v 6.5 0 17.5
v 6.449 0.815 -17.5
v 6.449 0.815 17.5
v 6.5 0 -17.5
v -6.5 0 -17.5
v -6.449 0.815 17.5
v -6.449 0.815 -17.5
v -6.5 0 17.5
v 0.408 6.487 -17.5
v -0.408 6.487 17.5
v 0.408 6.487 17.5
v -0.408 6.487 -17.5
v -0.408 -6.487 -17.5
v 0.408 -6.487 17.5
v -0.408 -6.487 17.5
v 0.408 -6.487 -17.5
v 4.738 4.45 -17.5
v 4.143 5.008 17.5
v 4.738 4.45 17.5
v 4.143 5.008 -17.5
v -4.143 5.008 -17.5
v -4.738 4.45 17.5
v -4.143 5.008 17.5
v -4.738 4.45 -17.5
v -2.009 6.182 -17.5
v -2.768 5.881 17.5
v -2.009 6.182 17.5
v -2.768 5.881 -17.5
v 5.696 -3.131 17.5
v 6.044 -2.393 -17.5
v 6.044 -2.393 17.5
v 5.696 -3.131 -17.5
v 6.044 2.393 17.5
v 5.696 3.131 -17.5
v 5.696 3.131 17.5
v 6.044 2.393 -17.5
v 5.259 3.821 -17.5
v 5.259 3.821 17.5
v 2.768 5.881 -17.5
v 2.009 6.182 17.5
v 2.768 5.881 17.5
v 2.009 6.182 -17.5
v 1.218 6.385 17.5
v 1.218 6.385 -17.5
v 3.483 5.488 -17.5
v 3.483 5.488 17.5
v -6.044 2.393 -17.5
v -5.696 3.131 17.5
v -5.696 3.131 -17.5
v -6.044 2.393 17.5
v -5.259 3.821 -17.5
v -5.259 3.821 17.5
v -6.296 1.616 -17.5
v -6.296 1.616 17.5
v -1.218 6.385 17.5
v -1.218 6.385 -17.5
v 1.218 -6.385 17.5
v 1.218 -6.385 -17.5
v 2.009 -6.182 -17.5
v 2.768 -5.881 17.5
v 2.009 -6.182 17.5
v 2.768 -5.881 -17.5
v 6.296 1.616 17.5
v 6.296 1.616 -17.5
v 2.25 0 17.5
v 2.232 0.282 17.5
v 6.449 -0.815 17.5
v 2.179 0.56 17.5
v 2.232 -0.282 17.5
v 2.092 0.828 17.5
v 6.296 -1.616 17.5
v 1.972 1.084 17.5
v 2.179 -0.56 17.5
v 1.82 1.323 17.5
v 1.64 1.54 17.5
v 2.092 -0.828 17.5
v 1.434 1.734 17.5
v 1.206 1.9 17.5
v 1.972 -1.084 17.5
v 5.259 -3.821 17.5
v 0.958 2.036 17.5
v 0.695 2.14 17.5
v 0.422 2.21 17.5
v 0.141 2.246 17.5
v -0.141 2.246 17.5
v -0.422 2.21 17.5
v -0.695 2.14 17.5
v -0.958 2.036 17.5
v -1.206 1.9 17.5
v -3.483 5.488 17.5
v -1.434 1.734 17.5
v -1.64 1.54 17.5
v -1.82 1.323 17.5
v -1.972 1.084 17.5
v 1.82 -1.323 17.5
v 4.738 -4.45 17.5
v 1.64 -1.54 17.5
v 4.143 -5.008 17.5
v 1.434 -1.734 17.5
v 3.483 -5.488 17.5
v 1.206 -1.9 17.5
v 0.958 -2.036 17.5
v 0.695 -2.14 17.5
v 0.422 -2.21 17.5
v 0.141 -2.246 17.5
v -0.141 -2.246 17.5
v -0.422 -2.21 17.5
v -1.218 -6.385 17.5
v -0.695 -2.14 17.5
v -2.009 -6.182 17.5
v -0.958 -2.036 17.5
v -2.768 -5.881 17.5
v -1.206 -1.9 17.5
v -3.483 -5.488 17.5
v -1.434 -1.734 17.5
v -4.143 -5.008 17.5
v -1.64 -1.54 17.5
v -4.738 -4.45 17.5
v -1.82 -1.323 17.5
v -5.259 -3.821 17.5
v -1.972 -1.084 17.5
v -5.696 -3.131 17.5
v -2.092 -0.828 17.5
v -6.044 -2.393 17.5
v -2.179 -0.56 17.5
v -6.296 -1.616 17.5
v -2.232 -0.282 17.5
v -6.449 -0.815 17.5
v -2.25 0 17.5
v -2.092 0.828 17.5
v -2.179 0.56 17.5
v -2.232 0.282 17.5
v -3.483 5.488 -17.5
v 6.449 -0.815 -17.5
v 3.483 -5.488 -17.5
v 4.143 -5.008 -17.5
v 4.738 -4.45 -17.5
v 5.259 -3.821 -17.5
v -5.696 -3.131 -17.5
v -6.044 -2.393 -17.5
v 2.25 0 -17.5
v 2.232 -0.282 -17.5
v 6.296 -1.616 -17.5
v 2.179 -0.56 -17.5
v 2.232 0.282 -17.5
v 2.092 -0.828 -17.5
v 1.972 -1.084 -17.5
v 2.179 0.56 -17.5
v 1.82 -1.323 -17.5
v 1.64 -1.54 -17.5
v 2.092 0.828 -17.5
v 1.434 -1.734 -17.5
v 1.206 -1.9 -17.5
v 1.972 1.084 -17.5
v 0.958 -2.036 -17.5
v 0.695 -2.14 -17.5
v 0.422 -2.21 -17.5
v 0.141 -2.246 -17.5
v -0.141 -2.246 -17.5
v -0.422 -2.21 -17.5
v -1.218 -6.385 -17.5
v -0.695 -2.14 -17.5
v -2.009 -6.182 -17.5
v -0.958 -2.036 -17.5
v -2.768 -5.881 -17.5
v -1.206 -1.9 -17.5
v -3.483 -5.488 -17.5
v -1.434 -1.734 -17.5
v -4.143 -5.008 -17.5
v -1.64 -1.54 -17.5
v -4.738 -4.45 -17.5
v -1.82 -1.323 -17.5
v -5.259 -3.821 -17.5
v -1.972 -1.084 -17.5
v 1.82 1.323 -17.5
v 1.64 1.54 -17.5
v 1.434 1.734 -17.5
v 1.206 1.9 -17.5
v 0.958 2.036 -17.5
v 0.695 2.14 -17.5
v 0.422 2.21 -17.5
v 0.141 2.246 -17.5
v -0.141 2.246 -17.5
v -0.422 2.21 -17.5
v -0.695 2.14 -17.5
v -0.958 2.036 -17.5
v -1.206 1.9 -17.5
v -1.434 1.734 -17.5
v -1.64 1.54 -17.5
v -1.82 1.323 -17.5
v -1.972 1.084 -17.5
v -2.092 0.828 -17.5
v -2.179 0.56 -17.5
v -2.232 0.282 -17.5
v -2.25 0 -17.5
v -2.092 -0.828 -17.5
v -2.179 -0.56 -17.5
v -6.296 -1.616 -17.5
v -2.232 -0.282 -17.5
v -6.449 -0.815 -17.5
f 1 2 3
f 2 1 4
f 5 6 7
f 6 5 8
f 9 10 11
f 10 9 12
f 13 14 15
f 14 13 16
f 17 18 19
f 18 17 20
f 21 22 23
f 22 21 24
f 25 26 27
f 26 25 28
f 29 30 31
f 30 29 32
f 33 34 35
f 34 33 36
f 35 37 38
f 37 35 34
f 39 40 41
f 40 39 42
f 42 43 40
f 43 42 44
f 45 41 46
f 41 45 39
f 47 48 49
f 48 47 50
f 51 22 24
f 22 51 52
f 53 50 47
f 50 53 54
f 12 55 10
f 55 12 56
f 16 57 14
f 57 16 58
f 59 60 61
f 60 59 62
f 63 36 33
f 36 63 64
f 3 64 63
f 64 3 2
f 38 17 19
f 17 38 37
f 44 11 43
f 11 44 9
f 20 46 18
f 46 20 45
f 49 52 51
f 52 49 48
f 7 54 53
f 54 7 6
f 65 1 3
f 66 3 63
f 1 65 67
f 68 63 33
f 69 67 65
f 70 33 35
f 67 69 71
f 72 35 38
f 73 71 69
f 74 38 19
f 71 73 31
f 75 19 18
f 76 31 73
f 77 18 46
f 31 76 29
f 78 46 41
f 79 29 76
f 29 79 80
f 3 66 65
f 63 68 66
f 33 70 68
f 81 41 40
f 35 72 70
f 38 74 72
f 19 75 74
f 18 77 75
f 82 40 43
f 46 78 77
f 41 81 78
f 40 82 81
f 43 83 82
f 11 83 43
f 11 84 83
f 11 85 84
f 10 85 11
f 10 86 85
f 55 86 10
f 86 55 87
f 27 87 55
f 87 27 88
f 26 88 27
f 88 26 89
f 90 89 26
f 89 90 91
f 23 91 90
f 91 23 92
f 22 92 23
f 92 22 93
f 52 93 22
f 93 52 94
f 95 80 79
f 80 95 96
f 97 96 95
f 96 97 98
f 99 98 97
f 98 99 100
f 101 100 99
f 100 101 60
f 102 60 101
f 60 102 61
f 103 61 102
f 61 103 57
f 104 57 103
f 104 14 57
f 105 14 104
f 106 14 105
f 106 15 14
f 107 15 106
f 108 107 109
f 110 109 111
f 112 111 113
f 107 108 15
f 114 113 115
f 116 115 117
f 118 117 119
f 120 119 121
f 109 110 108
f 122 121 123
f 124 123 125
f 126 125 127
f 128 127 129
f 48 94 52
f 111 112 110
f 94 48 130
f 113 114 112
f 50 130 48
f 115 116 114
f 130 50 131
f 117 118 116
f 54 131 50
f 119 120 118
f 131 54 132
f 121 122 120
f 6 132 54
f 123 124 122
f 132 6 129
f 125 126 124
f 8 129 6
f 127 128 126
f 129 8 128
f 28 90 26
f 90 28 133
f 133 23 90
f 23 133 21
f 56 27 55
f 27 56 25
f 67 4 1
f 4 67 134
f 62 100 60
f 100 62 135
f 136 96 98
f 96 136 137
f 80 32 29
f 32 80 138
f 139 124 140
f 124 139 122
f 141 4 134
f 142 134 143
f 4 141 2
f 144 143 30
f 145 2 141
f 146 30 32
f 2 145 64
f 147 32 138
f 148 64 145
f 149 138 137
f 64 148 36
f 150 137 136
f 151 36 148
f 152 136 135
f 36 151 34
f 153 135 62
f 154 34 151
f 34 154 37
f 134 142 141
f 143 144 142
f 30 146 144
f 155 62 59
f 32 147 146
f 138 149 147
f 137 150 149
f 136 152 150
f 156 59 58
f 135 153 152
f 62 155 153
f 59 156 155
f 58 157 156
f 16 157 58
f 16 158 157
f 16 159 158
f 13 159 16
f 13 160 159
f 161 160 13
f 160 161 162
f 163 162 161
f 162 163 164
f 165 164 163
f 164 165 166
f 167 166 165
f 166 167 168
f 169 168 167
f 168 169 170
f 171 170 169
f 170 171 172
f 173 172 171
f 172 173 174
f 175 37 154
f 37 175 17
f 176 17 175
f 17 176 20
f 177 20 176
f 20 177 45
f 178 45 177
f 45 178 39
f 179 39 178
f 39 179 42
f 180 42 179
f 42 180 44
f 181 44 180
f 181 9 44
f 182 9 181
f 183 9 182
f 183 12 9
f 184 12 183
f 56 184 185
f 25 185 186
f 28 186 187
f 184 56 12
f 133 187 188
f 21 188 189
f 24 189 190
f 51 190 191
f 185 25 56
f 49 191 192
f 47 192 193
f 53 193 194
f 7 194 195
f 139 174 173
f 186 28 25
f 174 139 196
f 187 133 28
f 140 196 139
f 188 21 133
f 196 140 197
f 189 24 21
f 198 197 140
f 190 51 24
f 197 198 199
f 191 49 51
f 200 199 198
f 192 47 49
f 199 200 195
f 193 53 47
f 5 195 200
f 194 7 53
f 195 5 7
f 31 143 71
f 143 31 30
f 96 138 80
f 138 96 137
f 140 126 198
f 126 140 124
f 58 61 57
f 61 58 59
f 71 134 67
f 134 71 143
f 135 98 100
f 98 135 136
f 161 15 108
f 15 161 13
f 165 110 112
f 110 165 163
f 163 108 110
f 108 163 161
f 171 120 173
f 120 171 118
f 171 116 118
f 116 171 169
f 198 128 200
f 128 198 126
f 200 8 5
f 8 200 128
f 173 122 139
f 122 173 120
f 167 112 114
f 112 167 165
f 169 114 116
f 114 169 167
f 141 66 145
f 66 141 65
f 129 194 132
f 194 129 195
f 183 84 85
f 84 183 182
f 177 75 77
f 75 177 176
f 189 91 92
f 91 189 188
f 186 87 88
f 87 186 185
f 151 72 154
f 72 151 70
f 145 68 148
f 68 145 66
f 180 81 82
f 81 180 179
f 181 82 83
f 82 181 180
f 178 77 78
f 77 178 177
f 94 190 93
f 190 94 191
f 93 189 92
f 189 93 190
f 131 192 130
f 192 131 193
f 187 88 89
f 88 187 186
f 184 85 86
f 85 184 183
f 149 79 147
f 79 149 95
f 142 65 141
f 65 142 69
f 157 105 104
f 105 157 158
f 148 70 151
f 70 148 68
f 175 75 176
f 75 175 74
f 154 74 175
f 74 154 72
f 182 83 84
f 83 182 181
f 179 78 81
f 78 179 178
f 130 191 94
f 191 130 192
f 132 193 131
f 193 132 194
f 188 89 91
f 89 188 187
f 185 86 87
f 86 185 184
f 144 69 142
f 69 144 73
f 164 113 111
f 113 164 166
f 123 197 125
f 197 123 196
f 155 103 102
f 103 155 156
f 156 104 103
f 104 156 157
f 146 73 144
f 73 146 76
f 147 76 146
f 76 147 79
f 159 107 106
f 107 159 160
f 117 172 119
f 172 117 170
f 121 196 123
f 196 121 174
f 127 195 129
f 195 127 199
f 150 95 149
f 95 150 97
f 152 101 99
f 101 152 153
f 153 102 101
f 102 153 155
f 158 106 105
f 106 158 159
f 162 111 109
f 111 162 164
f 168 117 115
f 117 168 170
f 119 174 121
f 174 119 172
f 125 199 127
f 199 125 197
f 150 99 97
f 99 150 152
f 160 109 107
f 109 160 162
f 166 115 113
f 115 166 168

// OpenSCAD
$fn = 50;


difference() {
	union() {
		translate(v = [0, 0, -17.5000000000]) {
			cylinder(h = 35, r = 6.5000000000);
		}
	}
	union() {
		translate(v = [0, 0, -100.0000000000]) {
			cylinder(h = 200, r = 2.2500000000);
		}
	}
}
